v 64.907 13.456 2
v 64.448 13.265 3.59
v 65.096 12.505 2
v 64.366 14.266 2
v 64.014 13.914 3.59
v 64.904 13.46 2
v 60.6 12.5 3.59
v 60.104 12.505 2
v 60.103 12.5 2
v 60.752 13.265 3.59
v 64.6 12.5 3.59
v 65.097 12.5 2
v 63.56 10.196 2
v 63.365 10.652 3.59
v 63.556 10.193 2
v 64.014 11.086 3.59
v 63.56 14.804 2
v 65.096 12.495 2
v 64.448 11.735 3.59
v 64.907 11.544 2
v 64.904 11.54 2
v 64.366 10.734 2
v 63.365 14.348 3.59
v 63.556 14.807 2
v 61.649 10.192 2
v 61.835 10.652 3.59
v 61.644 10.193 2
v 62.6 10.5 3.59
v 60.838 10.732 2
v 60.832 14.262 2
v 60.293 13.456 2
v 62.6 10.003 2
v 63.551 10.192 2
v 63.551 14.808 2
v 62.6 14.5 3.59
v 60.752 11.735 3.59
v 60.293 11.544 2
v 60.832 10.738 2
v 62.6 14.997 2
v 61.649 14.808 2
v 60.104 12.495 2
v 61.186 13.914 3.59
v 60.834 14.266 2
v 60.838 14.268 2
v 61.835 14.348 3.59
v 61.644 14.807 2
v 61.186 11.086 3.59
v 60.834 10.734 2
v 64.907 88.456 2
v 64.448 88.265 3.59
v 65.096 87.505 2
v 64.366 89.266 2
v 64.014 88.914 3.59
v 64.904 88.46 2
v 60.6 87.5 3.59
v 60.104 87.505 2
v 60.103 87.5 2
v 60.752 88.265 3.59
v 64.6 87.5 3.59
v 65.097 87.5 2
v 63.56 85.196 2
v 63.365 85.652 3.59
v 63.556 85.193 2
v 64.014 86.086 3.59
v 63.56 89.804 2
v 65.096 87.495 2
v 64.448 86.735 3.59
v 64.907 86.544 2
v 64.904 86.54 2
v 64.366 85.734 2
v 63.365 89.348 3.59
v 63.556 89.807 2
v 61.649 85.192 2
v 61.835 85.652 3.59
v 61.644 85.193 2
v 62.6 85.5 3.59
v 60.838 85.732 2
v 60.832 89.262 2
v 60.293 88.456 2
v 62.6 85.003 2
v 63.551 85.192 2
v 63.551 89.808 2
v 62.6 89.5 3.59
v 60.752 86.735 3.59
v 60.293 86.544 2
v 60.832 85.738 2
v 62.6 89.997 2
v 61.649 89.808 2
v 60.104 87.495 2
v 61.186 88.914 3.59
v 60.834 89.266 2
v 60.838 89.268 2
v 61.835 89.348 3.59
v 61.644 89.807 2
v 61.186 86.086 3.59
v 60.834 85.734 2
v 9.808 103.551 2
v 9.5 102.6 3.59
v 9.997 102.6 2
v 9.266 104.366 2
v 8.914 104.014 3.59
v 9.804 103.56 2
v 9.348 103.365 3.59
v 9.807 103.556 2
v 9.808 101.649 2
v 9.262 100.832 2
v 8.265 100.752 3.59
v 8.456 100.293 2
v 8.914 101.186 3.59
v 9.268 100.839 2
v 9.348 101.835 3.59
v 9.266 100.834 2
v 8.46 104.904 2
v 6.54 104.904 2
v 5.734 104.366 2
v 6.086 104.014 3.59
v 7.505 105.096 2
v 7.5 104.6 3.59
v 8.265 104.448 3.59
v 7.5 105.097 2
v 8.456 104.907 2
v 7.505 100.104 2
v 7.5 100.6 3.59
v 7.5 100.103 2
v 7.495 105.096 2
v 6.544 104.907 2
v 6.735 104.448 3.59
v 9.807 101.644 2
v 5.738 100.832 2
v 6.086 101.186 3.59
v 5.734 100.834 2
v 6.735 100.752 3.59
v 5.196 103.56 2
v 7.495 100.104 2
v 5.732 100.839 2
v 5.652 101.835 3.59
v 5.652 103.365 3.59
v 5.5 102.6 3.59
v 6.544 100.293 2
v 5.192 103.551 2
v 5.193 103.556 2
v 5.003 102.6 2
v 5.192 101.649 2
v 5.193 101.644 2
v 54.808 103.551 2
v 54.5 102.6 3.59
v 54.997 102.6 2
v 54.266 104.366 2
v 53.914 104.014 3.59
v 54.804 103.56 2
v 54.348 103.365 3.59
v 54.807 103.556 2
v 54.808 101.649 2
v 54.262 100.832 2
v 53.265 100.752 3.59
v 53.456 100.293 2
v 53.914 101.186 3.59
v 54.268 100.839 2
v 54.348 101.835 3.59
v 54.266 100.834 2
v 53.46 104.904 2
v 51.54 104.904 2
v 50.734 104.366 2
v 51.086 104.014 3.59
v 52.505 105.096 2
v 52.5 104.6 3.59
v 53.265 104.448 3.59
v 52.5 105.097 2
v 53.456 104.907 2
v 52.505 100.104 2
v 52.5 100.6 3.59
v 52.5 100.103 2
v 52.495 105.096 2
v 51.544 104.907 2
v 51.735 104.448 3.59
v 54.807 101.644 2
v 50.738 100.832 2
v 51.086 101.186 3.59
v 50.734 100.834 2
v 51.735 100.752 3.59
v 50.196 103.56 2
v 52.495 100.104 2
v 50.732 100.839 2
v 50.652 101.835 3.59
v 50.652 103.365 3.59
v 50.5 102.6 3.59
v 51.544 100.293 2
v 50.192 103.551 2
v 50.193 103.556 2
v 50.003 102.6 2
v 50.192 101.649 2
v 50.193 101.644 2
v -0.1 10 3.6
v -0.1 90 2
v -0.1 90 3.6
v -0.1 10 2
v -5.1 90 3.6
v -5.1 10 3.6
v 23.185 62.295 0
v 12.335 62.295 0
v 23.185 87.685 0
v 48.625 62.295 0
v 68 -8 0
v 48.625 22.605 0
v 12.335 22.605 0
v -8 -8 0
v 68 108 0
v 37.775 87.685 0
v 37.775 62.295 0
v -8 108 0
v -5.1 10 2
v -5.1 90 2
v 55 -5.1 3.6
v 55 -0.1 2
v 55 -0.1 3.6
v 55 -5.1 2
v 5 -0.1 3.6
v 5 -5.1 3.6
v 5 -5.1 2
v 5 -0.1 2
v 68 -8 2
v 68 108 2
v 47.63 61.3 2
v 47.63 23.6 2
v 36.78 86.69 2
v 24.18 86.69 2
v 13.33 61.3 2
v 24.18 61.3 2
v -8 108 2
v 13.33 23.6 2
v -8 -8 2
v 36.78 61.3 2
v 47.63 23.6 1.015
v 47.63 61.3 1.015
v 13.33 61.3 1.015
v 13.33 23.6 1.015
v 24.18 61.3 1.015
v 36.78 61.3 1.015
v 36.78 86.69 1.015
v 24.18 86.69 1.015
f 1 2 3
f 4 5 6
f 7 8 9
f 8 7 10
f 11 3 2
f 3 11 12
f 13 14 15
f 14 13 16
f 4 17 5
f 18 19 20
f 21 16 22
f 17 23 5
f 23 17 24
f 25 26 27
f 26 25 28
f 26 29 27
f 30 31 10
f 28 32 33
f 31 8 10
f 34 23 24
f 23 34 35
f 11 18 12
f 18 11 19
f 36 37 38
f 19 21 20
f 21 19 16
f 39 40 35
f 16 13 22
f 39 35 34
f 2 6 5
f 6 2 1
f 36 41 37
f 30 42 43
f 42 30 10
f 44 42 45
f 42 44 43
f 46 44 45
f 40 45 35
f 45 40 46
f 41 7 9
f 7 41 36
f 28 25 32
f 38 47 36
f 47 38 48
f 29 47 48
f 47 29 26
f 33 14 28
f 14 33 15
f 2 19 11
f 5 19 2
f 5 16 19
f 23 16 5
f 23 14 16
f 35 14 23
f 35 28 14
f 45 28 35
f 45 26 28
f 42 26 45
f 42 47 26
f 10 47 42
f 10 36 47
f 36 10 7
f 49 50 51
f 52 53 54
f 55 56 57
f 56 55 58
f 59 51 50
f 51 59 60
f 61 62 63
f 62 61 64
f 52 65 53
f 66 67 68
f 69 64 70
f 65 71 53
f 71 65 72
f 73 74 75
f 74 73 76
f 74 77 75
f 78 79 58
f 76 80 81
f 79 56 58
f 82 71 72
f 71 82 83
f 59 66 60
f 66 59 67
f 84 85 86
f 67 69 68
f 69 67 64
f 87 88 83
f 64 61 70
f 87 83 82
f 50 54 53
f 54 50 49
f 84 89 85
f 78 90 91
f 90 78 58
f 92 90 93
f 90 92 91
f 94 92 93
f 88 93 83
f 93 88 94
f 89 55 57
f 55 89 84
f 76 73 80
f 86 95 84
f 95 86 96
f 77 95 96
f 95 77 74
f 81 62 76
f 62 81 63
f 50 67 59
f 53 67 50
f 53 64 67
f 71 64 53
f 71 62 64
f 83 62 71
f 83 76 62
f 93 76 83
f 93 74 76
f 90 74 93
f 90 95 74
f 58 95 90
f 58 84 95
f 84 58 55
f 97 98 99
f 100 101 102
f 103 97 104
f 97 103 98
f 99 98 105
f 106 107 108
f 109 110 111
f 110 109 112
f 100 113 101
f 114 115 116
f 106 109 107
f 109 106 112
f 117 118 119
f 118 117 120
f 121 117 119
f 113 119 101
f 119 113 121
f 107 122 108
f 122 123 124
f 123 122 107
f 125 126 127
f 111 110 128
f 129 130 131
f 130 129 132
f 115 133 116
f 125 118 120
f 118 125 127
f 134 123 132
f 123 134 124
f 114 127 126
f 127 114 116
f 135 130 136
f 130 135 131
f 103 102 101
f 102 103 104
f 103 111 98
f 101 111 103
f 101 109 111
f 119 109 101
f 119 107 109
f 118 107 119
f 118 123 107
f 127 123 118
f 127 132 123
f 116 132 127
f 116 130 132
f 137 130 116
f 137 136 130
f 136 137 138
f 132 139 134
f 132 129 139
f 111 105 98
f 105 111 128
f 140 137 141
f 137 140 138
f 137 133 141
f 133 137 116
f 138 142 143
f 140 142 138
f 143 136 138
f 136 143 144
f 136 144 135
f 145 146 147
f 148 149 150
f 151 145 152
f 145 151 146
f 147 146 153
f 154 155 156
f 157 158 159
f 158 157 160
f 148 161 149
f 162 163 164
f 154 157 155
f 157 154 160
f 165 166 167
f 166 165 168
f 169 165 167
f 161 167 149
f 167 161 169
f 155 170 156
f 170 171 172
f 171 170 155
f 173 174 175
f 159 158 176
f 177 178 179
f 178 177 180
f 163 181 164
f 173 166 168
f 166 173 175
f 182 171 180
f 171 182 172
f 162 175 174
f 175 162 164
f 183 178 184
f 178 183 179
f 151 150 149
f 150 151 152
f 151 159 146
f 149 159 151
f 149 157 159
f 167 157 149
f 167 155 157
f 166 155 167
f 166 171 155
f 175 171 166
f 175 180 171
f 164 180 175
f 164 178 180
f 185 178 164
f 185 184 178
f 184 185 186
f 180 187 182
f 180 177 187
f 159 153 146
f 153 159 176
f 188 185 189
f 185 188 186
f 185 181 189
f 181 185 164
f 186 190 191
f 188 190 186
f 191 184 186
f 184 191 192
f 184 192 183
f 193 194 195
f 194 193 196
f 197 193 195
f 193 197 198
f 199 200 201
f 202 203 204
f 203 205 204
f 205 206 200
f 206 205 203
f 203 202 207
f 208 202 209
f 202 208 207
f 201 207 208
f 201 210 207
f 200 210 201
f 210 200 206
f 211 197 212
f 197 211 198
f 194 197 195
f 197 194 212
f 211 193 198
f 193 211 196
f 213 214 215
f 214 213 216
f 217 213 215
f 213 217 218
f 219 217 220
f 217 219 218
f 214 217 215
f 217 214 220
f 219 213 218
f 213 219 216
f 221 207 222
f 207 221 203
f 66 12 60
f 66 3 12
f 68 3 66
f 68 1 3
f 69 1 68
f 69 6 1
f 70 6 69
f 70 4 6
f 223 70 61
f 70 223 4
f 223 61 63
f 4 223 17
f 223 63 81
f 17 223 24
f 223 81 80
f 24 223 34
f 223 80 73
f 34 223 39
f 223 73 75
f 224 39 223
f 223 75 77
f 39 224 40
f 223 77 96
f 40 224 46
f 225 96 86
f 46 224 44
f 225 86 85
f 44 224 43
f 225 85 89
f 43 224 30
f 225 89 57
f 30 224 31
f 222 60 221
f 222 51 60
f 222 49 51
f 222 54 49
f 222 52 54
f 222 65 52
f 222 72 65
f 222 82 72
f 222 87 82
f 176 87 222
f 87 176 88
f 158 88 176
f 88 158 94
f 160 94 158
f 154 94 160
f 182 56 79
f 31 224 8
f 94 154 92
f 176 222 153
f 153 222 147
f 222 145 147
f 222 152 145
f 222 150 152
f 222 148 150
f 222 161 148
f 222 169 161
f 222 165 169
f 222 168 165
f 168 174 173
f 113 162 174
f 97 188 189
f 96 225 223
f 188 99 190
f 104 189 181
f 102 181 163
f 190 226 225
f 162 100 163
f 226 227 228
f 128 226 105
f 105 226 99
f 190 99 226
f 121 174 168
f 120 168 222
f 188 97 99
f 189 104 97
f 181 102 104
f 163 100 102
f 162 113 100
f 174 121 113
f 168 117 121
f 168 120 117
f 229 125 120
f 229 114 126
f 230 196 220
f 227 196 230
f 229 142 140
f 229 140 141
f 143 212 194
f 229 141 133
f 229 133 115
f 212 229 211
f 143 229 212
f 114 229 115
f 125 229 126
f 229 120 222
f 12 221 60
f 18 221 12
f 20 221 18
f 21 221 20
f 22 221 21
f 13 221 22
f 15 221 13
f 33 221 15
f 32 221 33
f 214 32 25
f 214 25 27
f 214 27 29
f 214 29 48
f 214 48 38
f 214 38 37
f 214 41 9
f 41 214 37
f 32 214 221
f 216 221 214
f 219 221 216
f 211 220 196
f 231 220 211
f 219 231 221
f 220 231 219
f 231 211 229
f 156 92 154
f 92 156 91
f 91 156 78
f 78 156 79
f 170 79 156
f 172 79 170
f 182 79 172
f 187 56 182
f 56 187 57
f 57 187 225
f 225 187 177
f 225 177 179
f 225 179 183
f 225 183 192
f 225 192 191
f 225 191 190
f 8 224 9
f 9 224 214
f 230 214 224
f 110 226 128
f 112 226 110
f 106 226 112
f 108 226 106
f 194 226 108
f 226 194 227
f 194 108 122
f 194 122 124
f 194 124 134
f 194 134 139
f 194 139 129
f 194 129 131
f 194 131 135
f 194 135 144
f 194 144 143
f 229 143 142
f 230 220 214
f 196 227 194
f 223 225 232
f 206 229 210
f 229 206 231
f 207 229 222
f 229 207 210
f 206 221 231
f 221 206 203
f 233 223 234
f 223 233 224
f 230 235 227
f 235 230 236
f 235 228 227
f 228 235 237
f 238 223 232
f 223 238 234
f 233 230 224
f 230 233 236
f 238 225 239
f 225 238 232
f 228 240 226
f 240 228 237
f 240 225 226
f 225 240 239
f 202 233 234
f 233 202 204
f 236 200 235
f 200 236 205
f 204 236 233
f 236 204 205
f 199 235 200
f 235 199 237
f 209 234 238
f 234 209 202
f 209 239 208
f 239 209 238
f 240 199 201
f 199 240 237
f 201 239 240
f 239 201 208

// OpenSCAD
/* 
 PCB Assembly Fixture for gluing ZJY154-2828KSWKG03 OLED to ARM CAN TOOL PCB.
 
 This fixture 
  1. HOLDS the 60x100mm PCB securely in place via press-fit bumps
  2. POSITIONS the OLED display accurately for gluing

 Written in OpenSCAD https://openscad.org
 */

eps = 0.01;
$fn = 16;

pcb_length = 100.0;        // X dimension (mm)
pcb_width = 60.0;          // Y dimension (mm)
pcb_thickness = 1.6;       // Z dimension (mm)
pcb_clearance = 0.2;       // Overall clearance for PCB fit (mm)

oled_width = 37.3;         // X dimension (mm)
oled_height = 33.9;        // Y dimension (mm)
oled_tolerance = 0.2;      // Manufacturing tolerance (±mm)
oled_clearance = 0.2;      // Clearance for OLED placement 
oled_chamfer = 1.0;        // For easy insertion
oled_center_y = 42.45;     // Center Y position (from PCB bottom edge at 0)
oled_center_x = 30.48;     // Center X position (from PCB left edge at 0)

cable_width = 12.0;        // Width of flat cable (X direction when extended)
cable_length = 25.0;       // Length of cable relief (Y direction)
cable_clearance = 0.6;     // Clearance for cable
cable_relief_width = cable_width + cable_clearance;
cable_relief_length = cable_length + cable_clearance;

border = 8.0;
base_thickness = 2.0;
bump_radius = 2.5;

module base_plate()
{
    translate([-border, -border, 0])
    cube([pcb_width+2*border, pcb_length+2*border, base_thickness]);
}

module bump() {
    // tapered bump for easy insertion
    translate([0, 0, base_thickness - eps])
    cylinder(h=pcb_thickness, r1=bump_radius, r2=bump_radius*0.8);
}

module bumps(){
    bump_positions = [
        [pcb_width+bump_radius+pcb_clearance/2, pcb_length/8, 0],
        [pcb_width+bump_radius+pcb_clearance/2, pcb_length*7/8, 0],
        [pcb_width/8, pcb_length+bump_radius+pcb_clearance/2, 0],
        [pcb_width*7/8, pcb_length+bump_radius+pcb_clearance/2, 0],
    ];

    for (pos = bump_positions) {
        translate(pos) bump();
    }

    translate([-2*bump_radius-pcb_clearance/2, pcb_length/8-bump_radius, 0])
    cube([bump_radius*2, pcb_length*3/4+2*bump_radius, base_thickness+pcb_thickness]);

    translate([pcb_width/8-bump_radius, -2*bump_radius-pcb_clearance/2, 0])
    cube([pcb_width*3/4+2*bump_radius, bump_radius*2, base_thickness+pcb_thickness]);
}

module oled() {
    oled_cutout_width = oled_width + oled_tolerance + oled_clearance;
    oled_cutout_height = oled_height + oled_tolerance + oled_clearance;

    translate([oled_center_x,oled_center_y,0])
    cube([oled_cutout_height, oled_cutout_width, 3*pcb_thickness], center = true);
    translate([oled_center_x,oled_center_y+oled_width/2+cable_relief_length/2-eps,0])
    cube([cable_relief_width, cable_relief_length, 3*pcb_thickness], center = true);
    
    /* chamfer for oled */
    translate([oled_center_x,oled_center_y,0])
    hull() {
        translate([0, 0, oled_chamfer+eps])
        cube([oled_cutout_height, oled_cutout_width, eps], center = true);
        
        translate([0, 0, -eps])
        cube([oled_cutout_height+2*oled_chamfer, oled_cutout_width+2*oled_chamfer, eps], center = true);
    }
    
    /* chamfer for cable */
    translate([oled_center_x,oled_center_y+oled_width/2+cable_relief_length/2-eps,0])
    hull() {
        translate([0, 0, oled_chamfer+eps])
        cube([cable_relief_width, cable_relief_length, eps], center = true);
        
        translate([0, 0, -eps])
        cube([cable_relief_width+2*oled_chamfer, cable_relief_length+2*oled_chamfer, eps], center = true);
    }
}

module fixture() {
    difference() {
        union() {
            base_plate();
            bumps();
        }
        oled();
    }
}

module drawing() {
    difference() {
        projection()
        base_plate();

        offset(r = -1)
        projection()
        base_plate();
    }

    projection(){
        
        bumps();
        oled();
    }
}

if (true) {
    fixture();
 } else {
    drawing();
}
